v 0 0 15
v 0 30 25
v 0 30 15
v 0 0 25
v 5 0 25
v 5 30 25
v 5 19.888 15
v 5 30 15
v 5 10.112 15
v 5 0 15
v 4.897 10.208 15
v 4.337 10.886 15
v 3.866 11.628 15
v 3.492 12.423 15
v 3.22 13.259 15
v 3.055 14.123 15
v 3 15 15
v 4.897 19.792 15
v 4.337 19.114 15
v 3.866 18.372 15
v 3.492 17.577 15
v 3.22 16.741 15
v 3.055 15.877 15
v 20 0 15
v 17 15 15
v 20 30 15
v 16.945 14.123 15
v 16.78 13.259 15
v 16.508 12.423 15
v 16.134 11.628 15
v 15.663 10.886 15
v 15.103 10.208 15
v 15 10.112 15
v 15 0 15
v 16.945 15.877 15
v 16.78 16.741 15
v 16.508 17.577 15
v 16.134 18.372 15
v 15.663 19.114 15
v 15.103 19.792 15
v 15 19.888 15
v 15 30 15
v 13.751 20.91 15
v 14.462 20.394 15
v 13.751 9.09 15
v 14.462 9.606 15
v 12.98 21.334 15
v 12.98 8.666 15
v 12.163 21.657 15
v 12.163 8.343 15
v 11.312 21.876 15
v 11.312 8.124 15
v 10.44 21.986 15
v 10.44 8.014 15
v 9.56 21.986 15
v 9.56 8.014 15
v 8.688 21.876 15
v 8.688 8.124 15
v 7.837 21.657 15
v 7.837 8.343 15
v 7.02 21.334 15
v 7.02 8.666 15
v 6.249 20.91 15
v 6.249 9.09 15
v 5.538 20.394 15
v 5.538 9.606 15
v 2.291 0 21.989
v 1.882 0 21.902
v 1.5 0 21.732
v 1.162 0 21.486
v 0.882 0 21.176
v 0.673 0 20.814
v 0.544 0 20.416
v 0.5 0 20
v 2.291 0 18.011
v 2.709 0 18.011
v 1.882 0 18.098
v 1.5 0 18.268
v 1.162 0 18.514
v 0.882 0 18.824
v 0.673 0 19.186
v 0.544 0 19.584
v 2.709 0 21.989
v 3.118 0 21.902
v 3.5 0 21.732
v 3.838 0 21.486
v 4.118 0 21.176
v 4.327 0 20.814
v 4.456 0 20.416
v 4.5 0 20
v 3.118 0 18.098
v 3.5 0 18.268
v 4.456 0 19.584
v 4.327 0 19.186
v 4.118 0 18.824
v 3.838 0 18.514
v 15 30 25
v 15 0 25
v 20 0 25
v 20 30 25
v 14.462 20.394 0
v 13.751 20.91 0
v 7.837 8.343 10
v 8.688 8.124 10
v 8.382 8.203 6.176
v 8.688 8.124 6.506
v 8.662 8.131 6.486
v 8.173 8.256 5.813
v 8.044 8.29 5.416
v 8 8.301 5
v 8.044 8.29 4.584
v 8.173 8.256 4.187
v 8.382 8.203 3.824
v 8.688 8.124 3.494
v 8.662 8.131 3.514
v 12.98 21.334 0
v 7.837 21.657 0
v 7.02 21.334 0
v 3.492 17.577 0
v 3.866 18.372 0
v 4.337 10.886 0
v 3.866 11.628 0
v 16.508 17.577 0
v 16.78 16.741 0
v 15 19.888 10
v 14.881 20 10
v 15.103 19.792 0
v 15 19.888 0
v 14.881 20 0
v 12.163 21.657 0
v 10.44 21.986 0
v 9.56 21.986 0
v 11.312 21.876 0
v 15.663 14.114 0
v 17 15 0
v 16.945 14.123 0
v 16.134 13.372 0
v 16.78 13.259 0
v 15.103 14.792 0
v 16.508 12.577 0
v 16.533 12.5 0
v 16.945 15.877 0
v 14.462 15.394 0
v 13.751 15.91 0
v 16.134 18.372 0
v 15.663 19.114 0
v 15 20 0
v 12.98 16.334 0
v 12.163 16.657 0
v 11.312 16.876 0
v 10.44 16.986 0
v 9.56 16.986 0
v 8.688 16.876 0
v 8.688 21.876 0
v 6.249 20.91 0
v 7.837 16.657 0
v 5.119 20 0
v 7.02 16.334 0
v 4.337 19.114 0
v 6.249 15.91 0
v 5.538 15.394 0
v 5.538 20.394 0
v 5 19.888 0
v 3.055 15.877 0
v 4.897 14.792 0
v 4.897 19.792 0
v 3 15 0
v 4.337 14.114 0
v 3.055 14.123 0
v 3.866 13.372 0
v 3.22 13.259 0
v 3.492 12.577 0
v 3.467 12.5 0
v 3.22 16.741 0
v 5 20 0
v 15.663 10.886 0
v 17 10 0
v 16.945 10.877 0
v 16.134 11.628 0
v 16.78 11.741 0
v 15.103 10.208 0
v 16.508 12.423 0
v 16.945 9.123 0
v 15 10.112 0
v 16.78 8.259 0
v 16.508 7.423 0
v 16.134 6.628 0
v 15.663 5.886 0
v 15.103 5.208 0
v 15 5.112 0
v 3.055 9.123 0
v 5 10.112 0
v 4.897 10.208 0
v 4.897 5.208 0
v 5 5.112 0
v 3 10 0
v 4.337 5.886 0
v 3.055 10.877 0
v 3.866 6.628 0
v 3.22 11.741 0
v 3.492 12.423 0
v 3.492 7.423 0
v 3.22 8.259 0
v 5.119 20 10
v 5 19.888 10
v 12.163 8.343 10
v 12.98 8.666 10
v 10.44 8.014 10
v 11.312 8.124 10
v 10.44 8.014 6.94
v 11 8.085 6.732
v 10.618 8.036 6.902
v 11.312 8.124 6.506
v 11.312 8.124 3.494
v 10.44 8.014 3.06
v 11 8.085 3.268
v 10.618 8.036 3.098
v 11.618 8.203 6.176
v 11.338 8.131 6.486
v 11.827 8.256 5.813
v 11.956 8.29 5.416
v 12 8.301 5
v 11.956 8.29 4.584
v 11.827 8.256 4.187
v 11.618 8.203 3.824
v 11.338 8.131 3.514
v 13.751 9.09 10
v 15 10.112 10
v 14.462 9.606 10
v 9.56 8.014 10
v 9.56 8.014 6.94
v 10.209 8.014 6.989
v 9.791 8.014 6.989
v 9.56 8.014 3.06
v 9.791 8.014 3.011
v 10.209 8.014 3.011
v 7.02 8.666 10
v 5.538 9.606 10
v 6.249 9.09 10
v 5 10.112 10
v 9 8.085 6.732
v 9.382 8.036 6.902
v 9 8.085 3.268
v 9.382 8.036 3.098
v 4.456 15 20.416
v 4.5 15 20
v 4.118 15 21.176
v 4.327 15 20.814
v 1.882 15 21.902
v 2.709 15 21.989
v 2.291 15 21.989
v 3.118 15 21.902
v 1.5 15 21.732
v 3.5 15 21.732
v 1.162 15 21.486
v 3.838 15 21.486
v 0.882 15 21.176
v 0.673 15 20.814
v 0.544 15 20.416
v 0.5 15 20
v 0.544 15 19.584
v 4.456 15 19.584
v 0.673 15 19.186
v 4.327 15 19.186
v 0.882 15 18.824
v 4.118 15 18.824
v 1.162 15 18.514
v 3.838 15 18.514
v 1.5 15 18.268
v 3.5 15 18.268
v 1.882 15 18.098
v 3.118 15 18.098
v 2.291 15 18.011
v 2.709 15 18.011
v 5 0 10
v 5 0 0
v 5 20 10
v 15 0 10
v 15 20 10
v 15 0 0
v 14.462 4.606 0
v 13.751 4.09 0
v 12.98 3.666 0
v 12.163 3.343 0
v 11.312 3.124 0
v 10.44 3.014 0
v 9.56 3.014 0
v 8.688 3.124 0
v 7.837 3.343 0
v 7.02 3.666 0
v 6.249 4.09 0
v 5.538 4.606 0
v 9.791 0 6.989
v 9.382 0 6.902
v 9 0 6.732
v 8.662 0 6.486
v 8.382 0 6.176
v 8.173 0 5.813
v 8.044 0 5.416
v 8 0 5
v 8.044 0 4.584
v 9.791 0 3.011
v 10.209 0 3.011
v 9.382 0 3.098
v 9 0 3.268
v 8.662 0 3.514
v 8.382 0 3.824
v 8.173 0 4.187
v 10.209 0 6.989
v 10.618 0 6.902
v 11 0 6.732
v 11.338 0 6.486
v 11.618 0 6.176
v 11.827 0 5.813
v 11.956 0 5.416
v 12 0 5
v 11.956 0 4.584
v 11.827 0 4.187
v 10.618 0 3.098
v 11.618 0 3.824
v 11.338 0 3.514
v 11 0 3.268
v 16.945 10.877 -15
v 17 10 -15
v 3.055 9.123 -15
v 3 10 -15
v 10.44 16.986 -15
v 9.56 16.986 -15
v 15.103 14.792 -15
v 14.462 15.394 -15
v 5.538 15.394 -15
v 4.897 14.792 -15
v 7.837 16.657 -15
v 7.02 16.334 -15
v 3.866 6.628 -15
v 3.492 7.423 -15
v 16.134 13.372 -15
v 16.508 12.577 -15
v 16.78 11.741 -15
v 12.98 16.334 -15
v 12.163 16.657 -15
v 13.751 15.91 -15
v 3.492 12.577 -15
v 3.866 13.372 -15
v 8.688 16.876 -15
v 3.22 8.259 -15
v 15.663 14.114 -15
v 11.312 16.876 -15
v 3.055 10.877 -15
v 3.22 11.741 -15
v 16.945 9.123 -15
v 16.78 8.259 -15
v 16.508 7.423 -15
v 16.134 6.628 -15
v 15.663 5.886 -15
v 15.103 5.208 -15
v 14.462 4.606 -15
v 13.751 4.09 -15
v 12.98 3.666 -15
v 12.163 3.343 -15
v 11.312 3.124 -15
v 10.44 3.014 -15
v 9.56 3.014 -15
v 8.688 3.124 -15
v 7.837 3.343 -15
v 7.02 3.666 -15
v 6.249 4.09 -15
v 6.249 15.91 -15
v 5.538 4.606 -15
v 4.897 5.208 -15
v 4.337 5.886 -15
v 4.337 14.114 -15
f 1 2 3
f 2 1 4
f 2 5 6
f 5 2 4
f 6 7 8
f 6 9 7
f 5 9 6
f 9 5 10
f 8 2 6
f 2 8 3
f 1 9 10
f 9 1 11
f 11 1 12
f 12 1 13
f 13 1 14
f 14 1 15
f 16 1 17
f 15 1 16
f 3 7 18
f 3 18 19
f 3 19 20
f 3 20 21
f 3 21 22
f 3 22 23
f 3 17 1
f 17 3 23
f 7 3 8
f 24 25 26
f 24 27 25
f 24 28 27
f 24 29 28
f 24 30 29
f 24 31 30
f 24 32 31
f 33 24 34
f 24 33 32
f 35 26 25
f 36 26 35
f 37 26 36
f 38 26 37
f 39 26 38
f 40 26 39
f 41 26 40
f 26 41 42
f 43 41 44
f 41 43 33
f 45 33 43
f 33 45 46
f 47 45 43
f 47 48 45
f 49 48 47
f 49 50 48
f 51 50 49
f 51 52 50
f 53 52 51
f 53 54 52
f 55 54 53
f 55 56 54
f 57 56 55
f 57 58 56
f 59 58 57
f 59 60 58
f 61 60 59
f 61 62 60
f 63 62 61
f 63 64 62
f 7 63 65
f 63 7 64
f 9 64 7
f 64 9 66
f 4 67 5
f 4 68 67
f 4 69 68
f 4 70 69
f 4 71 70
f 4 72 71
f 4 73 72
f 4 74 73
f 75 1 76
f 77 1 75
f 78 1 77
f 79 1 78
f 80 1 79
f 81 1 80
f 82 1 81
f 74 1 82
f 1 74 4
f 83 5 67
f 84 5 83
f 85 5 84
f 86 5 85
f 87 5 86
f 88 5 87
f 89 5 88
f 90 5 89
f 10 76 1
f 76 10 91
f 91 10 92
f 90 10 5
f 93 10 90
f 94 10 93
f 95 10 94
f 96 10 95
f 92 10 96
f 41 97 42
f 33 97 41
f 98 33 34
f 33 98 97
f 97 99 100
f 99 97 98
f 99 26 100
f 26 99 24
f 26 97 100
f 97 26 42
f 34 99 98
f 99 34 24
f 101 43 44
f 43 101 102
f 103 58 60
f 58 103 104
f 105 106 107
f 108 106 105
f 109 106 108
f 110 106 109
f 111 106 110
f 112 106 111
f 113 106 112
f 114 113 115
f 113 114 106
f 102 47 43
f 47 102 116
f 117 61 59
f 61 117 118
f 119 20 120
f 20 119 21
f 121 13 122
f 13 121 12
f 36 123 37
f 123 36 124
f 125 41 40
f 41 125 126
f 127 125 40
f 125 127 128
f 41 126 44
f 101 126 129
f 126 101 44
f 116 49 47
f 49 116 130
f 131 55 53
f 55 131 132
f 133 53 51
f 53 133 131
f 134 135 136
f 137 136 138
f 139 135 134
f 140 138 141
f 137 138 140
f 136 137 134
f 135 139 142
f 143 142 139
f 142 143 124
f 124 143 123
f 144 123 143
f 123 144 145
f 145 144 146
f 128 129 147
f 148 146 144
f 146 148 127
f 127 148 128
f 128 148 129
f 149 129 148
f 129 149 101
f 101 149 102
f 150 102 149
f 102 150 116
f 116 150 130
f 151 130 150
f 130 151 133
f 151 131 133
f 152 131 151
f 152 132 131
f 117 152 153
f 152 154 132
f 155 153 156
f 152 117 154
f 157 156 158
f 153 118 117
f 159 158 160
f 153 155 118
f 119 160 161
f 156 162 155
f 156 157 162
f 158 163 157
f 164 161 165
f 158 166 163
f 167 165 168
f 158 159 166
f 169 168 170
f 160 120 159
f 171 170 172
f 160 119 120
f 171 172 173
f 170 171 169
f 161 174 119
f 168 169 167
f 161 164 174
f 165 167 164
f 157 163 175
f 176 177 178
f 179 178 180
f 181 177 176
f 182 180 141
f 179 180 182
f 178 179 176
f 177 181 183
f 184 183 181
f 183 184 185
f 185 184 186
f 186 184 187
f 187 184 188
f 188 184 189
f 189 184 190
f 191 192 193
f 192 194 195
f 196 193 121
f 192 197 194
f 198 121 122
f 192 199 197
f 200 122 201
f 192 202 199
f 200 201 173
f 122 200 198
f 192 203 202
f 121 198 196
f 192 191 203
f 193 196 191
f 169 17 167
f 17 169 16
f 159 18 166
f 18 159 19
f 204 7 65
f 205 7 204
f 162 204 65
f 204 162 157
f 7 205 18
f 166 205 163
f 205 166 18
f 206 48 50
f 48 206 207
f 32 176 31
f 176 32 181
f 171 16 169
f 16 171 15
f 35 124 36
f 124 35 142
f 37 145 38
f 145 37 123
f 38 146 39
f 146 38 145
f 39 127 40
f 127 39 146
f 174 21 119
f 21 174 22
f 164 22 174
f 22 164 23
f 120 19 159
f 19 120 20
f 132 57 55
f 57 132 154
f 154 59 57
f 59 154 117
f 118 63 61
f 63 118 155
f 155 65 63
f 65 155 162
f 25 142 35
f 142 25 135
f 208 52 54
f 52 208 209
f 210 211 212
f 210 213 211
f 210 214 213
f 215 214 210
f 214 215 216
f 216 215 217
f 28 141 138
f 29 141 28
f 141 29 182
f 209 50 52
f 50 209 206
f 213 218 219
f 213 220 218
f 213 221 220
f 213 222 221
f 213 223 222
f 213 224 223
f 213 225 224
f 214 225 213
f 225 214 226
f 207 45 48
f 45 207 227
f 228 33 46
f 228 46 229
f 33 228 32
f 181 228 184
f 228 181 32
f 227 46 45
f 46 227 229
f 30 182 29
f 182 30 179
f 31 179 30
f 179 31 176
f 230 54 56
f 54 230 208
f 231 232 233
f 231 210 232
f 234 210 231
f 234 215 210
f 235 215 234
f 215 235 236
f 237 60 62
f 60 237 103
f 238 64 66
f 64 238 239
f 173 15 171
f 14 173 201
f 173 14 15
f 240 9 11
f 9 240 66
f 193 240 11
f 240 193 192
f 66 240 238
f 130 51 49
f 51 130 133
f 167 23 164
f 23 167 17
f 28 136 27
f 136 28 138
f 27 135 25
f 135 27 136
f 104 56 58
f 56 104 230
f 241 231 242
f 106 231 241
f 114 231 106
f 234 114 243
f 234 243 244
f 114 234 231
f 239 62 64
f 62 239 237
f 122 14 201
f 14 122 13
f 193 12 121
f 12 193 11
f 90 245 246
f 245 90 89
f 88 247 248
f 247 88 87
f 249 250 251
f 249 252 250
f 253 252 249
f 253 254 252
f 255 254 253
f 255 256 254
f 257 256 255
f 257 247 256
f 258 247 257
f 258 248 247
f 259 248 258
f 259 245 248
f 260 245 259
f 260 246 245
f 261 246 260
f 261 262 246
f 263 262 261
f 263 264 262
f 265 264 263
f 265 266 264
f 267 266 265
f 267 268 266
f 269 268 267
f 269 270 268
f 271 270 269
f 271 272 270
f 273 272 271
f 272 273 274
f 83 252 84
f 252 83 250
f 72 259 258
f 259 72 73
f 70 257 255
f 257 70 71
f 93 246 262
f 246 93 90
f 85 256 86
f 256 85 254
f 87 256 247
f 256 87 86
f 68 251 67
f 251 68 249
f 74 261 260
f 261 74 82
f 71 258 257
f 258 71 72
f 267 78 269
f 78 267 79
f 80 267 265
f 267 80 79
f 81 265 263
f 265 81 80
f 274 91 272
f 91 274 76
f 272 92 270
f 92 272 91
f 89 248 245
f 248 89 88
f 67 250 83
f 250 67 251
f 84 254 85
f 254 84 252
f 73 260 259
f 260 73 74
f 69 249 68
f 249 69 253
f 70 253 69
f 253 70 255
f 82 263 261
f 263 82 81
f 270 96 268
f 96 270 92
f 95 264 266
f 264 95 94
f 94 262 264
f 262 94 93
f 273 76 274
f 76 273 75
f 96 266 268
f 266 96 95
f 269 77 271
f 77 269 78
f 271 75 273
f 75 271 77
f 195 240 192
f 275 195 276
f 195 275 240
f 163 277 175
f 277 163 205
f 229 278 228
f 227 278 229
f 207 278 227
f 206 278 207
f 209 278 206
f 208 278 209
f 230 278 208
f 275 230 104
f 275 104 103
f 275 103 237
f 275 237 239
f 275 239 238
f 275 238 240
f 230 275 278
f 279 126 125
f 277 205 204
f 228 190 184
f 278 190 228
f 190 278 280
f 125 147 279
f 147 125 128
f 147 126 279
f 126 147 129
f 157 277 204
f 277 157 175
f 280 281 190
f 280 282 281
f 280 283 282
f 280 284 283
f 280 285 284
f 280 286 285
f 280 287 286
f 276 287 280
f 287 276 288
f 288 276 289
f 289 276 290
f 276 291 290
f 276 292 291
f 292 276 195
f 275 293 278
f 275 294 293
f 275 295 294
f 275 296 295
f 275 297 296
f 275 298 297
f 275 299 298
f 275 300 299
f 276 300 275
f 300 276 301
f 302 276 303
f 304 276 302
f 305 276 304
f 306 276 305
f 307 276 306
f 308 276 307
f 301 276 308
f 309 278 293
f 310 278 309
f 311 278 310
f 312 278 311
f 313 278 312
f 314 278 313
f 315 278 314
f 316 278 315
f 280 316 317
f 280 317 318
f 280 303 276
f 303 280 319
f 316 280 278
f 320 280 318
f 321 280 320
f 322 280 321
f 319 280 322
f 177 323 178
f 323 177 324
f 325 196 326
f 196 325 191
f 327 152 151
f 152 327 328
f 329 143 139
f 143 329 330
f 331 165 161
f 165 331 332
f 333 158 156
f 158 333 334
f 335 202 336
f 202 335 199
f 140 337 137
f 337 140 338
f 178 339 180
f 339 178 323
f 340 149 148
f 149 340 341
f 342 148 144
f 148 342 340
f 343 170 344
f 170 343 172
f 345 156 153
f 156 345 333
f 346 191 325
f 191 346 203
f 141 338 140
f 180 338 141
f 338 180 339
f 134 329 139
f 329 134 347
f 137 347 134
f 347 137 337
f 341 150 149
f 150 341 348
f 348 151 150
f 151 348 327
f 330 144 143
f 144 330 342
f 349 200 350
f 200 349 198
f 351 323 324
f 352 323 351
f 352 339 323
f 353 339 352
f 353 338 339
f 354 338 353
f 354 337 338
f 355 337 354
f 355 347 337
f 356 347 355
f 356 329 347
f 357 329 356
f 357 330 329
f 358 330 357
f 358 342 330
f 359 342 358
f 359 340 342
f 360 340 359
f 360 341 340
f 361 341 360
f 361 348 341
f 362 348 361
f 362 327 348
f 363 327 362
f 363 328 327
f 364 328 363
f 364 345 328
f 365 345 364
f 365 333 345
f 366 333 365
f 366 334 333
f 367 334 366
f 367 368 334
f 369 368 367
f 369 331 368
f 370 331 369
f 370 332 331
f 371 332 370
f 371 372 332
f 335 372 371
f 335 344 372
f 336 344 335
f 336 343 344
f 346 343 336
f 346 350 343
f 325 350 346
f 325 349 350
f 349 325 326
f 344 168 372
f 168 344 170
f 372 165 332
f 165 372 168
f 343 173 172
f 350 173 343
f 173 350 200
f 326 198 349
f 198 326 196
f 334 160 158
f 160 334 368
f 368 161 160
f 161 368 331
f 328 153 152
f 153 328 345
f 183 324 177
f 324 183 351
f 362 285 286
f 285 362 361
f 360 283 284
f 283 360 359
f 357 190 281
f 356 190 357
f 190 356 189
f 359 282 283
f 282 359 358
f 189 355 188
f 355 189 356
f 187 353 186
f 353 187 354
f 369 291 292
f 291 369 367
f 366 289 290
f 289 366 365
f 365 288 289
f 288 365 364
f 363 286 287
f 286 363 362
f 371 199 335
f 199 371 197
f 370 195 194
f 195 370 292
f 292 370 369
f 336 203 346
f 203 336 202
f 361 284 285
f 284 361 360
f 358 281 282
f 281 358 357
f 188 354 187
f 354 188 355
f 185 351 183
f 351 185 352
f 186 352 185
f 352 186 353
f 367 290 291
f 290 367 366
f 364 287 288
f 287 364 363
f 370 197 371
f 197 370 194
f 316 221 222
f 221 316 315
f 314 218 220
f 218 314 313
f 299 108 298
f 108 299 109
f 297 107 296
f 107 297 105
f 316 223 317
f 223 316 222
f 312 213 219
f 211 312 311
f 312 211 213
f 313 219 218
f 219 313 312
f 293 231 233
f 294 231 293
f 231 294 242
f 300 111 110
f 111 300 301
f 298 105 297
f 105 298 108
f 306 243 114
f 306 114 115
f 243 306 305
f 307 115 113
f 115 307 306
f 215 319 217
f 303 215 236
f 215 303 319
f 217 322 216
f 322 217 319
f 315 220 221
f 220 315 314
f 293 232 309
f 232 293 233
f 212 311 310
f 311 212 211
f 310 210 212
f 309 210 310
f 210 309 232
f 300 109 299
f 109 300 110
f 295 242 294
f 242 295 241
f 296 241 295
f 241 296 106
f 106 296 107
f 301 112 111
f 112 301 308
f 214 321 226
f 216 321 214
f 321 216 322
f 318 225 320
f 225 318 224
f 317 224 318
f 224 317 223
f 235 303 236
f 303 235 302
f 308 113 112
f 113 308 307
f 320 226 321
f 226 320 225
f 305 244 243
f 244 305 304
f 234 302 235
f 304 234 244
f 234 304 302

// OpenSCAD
// Parameters
arm_thickness = 5;
arm_length = 30;
arm_height = 10;
gap_width = 10;
base_radius = 7;
base_height = 15;
tab_thickness = 4;
tab_length = 20;
tab_height = 10;
pin_hole_radius = 2;

// Fork End Connector
module fork_end_connector() {
    difference() {
        union() {
            // Left arm
            translate([0, 0, base_height])
                cube([arm_thickness, arm_length, arm_height], center=false);
            // Right arm
            translate([arm_thickness + gap_width, 0, base_height])
                cube([arm_thickness, arm_length, arm_height], center=false);
            // Base cylinder
            translate([arm_thickness + gap_width/2, arm_length/2, 0])
                cylinder(h=base_height, r=base_radius, $fn=50);
        }
        // Holes in arms
        translate([arm_thickness/2, arm_length/2, base_height + arm_height/2])
            rotate([90,0,0])
                cylinder(h=arm_thickness*2 + gap_width, r=pin_hole_radius, $fn=30);
    }
}

// Pin End Connector
module pin_end_connector() {
    difference() {
        union() {
            // Tab
            translate([arm_thickness, 0, base_height])
                cube([gap_width, tab_length, tab_height], center=false);
            // Base cylinder
            translate([arm_thickness + gap_width/2, tab_length/2, 0])
                cylinder(h=base_height, r=base_radius, $fn=50);
        }
        // Hole in tab
        translate([arm_thickness + gap_width/2, tab_length/2, base_height + tab_height/2])
            rotate([90,0,0])
                cylinder(h=gap_width + 2, r=pin_hole_radius, $fn=30);
    }
}

// Assembly
module assembly() {
    fork_end_connector();
    // Position pin_end_connector so its tab fits between the fork arms
    translate([0, 0, -base_height])
        pin_end_connector();
}

// Render the full model
assembly();
